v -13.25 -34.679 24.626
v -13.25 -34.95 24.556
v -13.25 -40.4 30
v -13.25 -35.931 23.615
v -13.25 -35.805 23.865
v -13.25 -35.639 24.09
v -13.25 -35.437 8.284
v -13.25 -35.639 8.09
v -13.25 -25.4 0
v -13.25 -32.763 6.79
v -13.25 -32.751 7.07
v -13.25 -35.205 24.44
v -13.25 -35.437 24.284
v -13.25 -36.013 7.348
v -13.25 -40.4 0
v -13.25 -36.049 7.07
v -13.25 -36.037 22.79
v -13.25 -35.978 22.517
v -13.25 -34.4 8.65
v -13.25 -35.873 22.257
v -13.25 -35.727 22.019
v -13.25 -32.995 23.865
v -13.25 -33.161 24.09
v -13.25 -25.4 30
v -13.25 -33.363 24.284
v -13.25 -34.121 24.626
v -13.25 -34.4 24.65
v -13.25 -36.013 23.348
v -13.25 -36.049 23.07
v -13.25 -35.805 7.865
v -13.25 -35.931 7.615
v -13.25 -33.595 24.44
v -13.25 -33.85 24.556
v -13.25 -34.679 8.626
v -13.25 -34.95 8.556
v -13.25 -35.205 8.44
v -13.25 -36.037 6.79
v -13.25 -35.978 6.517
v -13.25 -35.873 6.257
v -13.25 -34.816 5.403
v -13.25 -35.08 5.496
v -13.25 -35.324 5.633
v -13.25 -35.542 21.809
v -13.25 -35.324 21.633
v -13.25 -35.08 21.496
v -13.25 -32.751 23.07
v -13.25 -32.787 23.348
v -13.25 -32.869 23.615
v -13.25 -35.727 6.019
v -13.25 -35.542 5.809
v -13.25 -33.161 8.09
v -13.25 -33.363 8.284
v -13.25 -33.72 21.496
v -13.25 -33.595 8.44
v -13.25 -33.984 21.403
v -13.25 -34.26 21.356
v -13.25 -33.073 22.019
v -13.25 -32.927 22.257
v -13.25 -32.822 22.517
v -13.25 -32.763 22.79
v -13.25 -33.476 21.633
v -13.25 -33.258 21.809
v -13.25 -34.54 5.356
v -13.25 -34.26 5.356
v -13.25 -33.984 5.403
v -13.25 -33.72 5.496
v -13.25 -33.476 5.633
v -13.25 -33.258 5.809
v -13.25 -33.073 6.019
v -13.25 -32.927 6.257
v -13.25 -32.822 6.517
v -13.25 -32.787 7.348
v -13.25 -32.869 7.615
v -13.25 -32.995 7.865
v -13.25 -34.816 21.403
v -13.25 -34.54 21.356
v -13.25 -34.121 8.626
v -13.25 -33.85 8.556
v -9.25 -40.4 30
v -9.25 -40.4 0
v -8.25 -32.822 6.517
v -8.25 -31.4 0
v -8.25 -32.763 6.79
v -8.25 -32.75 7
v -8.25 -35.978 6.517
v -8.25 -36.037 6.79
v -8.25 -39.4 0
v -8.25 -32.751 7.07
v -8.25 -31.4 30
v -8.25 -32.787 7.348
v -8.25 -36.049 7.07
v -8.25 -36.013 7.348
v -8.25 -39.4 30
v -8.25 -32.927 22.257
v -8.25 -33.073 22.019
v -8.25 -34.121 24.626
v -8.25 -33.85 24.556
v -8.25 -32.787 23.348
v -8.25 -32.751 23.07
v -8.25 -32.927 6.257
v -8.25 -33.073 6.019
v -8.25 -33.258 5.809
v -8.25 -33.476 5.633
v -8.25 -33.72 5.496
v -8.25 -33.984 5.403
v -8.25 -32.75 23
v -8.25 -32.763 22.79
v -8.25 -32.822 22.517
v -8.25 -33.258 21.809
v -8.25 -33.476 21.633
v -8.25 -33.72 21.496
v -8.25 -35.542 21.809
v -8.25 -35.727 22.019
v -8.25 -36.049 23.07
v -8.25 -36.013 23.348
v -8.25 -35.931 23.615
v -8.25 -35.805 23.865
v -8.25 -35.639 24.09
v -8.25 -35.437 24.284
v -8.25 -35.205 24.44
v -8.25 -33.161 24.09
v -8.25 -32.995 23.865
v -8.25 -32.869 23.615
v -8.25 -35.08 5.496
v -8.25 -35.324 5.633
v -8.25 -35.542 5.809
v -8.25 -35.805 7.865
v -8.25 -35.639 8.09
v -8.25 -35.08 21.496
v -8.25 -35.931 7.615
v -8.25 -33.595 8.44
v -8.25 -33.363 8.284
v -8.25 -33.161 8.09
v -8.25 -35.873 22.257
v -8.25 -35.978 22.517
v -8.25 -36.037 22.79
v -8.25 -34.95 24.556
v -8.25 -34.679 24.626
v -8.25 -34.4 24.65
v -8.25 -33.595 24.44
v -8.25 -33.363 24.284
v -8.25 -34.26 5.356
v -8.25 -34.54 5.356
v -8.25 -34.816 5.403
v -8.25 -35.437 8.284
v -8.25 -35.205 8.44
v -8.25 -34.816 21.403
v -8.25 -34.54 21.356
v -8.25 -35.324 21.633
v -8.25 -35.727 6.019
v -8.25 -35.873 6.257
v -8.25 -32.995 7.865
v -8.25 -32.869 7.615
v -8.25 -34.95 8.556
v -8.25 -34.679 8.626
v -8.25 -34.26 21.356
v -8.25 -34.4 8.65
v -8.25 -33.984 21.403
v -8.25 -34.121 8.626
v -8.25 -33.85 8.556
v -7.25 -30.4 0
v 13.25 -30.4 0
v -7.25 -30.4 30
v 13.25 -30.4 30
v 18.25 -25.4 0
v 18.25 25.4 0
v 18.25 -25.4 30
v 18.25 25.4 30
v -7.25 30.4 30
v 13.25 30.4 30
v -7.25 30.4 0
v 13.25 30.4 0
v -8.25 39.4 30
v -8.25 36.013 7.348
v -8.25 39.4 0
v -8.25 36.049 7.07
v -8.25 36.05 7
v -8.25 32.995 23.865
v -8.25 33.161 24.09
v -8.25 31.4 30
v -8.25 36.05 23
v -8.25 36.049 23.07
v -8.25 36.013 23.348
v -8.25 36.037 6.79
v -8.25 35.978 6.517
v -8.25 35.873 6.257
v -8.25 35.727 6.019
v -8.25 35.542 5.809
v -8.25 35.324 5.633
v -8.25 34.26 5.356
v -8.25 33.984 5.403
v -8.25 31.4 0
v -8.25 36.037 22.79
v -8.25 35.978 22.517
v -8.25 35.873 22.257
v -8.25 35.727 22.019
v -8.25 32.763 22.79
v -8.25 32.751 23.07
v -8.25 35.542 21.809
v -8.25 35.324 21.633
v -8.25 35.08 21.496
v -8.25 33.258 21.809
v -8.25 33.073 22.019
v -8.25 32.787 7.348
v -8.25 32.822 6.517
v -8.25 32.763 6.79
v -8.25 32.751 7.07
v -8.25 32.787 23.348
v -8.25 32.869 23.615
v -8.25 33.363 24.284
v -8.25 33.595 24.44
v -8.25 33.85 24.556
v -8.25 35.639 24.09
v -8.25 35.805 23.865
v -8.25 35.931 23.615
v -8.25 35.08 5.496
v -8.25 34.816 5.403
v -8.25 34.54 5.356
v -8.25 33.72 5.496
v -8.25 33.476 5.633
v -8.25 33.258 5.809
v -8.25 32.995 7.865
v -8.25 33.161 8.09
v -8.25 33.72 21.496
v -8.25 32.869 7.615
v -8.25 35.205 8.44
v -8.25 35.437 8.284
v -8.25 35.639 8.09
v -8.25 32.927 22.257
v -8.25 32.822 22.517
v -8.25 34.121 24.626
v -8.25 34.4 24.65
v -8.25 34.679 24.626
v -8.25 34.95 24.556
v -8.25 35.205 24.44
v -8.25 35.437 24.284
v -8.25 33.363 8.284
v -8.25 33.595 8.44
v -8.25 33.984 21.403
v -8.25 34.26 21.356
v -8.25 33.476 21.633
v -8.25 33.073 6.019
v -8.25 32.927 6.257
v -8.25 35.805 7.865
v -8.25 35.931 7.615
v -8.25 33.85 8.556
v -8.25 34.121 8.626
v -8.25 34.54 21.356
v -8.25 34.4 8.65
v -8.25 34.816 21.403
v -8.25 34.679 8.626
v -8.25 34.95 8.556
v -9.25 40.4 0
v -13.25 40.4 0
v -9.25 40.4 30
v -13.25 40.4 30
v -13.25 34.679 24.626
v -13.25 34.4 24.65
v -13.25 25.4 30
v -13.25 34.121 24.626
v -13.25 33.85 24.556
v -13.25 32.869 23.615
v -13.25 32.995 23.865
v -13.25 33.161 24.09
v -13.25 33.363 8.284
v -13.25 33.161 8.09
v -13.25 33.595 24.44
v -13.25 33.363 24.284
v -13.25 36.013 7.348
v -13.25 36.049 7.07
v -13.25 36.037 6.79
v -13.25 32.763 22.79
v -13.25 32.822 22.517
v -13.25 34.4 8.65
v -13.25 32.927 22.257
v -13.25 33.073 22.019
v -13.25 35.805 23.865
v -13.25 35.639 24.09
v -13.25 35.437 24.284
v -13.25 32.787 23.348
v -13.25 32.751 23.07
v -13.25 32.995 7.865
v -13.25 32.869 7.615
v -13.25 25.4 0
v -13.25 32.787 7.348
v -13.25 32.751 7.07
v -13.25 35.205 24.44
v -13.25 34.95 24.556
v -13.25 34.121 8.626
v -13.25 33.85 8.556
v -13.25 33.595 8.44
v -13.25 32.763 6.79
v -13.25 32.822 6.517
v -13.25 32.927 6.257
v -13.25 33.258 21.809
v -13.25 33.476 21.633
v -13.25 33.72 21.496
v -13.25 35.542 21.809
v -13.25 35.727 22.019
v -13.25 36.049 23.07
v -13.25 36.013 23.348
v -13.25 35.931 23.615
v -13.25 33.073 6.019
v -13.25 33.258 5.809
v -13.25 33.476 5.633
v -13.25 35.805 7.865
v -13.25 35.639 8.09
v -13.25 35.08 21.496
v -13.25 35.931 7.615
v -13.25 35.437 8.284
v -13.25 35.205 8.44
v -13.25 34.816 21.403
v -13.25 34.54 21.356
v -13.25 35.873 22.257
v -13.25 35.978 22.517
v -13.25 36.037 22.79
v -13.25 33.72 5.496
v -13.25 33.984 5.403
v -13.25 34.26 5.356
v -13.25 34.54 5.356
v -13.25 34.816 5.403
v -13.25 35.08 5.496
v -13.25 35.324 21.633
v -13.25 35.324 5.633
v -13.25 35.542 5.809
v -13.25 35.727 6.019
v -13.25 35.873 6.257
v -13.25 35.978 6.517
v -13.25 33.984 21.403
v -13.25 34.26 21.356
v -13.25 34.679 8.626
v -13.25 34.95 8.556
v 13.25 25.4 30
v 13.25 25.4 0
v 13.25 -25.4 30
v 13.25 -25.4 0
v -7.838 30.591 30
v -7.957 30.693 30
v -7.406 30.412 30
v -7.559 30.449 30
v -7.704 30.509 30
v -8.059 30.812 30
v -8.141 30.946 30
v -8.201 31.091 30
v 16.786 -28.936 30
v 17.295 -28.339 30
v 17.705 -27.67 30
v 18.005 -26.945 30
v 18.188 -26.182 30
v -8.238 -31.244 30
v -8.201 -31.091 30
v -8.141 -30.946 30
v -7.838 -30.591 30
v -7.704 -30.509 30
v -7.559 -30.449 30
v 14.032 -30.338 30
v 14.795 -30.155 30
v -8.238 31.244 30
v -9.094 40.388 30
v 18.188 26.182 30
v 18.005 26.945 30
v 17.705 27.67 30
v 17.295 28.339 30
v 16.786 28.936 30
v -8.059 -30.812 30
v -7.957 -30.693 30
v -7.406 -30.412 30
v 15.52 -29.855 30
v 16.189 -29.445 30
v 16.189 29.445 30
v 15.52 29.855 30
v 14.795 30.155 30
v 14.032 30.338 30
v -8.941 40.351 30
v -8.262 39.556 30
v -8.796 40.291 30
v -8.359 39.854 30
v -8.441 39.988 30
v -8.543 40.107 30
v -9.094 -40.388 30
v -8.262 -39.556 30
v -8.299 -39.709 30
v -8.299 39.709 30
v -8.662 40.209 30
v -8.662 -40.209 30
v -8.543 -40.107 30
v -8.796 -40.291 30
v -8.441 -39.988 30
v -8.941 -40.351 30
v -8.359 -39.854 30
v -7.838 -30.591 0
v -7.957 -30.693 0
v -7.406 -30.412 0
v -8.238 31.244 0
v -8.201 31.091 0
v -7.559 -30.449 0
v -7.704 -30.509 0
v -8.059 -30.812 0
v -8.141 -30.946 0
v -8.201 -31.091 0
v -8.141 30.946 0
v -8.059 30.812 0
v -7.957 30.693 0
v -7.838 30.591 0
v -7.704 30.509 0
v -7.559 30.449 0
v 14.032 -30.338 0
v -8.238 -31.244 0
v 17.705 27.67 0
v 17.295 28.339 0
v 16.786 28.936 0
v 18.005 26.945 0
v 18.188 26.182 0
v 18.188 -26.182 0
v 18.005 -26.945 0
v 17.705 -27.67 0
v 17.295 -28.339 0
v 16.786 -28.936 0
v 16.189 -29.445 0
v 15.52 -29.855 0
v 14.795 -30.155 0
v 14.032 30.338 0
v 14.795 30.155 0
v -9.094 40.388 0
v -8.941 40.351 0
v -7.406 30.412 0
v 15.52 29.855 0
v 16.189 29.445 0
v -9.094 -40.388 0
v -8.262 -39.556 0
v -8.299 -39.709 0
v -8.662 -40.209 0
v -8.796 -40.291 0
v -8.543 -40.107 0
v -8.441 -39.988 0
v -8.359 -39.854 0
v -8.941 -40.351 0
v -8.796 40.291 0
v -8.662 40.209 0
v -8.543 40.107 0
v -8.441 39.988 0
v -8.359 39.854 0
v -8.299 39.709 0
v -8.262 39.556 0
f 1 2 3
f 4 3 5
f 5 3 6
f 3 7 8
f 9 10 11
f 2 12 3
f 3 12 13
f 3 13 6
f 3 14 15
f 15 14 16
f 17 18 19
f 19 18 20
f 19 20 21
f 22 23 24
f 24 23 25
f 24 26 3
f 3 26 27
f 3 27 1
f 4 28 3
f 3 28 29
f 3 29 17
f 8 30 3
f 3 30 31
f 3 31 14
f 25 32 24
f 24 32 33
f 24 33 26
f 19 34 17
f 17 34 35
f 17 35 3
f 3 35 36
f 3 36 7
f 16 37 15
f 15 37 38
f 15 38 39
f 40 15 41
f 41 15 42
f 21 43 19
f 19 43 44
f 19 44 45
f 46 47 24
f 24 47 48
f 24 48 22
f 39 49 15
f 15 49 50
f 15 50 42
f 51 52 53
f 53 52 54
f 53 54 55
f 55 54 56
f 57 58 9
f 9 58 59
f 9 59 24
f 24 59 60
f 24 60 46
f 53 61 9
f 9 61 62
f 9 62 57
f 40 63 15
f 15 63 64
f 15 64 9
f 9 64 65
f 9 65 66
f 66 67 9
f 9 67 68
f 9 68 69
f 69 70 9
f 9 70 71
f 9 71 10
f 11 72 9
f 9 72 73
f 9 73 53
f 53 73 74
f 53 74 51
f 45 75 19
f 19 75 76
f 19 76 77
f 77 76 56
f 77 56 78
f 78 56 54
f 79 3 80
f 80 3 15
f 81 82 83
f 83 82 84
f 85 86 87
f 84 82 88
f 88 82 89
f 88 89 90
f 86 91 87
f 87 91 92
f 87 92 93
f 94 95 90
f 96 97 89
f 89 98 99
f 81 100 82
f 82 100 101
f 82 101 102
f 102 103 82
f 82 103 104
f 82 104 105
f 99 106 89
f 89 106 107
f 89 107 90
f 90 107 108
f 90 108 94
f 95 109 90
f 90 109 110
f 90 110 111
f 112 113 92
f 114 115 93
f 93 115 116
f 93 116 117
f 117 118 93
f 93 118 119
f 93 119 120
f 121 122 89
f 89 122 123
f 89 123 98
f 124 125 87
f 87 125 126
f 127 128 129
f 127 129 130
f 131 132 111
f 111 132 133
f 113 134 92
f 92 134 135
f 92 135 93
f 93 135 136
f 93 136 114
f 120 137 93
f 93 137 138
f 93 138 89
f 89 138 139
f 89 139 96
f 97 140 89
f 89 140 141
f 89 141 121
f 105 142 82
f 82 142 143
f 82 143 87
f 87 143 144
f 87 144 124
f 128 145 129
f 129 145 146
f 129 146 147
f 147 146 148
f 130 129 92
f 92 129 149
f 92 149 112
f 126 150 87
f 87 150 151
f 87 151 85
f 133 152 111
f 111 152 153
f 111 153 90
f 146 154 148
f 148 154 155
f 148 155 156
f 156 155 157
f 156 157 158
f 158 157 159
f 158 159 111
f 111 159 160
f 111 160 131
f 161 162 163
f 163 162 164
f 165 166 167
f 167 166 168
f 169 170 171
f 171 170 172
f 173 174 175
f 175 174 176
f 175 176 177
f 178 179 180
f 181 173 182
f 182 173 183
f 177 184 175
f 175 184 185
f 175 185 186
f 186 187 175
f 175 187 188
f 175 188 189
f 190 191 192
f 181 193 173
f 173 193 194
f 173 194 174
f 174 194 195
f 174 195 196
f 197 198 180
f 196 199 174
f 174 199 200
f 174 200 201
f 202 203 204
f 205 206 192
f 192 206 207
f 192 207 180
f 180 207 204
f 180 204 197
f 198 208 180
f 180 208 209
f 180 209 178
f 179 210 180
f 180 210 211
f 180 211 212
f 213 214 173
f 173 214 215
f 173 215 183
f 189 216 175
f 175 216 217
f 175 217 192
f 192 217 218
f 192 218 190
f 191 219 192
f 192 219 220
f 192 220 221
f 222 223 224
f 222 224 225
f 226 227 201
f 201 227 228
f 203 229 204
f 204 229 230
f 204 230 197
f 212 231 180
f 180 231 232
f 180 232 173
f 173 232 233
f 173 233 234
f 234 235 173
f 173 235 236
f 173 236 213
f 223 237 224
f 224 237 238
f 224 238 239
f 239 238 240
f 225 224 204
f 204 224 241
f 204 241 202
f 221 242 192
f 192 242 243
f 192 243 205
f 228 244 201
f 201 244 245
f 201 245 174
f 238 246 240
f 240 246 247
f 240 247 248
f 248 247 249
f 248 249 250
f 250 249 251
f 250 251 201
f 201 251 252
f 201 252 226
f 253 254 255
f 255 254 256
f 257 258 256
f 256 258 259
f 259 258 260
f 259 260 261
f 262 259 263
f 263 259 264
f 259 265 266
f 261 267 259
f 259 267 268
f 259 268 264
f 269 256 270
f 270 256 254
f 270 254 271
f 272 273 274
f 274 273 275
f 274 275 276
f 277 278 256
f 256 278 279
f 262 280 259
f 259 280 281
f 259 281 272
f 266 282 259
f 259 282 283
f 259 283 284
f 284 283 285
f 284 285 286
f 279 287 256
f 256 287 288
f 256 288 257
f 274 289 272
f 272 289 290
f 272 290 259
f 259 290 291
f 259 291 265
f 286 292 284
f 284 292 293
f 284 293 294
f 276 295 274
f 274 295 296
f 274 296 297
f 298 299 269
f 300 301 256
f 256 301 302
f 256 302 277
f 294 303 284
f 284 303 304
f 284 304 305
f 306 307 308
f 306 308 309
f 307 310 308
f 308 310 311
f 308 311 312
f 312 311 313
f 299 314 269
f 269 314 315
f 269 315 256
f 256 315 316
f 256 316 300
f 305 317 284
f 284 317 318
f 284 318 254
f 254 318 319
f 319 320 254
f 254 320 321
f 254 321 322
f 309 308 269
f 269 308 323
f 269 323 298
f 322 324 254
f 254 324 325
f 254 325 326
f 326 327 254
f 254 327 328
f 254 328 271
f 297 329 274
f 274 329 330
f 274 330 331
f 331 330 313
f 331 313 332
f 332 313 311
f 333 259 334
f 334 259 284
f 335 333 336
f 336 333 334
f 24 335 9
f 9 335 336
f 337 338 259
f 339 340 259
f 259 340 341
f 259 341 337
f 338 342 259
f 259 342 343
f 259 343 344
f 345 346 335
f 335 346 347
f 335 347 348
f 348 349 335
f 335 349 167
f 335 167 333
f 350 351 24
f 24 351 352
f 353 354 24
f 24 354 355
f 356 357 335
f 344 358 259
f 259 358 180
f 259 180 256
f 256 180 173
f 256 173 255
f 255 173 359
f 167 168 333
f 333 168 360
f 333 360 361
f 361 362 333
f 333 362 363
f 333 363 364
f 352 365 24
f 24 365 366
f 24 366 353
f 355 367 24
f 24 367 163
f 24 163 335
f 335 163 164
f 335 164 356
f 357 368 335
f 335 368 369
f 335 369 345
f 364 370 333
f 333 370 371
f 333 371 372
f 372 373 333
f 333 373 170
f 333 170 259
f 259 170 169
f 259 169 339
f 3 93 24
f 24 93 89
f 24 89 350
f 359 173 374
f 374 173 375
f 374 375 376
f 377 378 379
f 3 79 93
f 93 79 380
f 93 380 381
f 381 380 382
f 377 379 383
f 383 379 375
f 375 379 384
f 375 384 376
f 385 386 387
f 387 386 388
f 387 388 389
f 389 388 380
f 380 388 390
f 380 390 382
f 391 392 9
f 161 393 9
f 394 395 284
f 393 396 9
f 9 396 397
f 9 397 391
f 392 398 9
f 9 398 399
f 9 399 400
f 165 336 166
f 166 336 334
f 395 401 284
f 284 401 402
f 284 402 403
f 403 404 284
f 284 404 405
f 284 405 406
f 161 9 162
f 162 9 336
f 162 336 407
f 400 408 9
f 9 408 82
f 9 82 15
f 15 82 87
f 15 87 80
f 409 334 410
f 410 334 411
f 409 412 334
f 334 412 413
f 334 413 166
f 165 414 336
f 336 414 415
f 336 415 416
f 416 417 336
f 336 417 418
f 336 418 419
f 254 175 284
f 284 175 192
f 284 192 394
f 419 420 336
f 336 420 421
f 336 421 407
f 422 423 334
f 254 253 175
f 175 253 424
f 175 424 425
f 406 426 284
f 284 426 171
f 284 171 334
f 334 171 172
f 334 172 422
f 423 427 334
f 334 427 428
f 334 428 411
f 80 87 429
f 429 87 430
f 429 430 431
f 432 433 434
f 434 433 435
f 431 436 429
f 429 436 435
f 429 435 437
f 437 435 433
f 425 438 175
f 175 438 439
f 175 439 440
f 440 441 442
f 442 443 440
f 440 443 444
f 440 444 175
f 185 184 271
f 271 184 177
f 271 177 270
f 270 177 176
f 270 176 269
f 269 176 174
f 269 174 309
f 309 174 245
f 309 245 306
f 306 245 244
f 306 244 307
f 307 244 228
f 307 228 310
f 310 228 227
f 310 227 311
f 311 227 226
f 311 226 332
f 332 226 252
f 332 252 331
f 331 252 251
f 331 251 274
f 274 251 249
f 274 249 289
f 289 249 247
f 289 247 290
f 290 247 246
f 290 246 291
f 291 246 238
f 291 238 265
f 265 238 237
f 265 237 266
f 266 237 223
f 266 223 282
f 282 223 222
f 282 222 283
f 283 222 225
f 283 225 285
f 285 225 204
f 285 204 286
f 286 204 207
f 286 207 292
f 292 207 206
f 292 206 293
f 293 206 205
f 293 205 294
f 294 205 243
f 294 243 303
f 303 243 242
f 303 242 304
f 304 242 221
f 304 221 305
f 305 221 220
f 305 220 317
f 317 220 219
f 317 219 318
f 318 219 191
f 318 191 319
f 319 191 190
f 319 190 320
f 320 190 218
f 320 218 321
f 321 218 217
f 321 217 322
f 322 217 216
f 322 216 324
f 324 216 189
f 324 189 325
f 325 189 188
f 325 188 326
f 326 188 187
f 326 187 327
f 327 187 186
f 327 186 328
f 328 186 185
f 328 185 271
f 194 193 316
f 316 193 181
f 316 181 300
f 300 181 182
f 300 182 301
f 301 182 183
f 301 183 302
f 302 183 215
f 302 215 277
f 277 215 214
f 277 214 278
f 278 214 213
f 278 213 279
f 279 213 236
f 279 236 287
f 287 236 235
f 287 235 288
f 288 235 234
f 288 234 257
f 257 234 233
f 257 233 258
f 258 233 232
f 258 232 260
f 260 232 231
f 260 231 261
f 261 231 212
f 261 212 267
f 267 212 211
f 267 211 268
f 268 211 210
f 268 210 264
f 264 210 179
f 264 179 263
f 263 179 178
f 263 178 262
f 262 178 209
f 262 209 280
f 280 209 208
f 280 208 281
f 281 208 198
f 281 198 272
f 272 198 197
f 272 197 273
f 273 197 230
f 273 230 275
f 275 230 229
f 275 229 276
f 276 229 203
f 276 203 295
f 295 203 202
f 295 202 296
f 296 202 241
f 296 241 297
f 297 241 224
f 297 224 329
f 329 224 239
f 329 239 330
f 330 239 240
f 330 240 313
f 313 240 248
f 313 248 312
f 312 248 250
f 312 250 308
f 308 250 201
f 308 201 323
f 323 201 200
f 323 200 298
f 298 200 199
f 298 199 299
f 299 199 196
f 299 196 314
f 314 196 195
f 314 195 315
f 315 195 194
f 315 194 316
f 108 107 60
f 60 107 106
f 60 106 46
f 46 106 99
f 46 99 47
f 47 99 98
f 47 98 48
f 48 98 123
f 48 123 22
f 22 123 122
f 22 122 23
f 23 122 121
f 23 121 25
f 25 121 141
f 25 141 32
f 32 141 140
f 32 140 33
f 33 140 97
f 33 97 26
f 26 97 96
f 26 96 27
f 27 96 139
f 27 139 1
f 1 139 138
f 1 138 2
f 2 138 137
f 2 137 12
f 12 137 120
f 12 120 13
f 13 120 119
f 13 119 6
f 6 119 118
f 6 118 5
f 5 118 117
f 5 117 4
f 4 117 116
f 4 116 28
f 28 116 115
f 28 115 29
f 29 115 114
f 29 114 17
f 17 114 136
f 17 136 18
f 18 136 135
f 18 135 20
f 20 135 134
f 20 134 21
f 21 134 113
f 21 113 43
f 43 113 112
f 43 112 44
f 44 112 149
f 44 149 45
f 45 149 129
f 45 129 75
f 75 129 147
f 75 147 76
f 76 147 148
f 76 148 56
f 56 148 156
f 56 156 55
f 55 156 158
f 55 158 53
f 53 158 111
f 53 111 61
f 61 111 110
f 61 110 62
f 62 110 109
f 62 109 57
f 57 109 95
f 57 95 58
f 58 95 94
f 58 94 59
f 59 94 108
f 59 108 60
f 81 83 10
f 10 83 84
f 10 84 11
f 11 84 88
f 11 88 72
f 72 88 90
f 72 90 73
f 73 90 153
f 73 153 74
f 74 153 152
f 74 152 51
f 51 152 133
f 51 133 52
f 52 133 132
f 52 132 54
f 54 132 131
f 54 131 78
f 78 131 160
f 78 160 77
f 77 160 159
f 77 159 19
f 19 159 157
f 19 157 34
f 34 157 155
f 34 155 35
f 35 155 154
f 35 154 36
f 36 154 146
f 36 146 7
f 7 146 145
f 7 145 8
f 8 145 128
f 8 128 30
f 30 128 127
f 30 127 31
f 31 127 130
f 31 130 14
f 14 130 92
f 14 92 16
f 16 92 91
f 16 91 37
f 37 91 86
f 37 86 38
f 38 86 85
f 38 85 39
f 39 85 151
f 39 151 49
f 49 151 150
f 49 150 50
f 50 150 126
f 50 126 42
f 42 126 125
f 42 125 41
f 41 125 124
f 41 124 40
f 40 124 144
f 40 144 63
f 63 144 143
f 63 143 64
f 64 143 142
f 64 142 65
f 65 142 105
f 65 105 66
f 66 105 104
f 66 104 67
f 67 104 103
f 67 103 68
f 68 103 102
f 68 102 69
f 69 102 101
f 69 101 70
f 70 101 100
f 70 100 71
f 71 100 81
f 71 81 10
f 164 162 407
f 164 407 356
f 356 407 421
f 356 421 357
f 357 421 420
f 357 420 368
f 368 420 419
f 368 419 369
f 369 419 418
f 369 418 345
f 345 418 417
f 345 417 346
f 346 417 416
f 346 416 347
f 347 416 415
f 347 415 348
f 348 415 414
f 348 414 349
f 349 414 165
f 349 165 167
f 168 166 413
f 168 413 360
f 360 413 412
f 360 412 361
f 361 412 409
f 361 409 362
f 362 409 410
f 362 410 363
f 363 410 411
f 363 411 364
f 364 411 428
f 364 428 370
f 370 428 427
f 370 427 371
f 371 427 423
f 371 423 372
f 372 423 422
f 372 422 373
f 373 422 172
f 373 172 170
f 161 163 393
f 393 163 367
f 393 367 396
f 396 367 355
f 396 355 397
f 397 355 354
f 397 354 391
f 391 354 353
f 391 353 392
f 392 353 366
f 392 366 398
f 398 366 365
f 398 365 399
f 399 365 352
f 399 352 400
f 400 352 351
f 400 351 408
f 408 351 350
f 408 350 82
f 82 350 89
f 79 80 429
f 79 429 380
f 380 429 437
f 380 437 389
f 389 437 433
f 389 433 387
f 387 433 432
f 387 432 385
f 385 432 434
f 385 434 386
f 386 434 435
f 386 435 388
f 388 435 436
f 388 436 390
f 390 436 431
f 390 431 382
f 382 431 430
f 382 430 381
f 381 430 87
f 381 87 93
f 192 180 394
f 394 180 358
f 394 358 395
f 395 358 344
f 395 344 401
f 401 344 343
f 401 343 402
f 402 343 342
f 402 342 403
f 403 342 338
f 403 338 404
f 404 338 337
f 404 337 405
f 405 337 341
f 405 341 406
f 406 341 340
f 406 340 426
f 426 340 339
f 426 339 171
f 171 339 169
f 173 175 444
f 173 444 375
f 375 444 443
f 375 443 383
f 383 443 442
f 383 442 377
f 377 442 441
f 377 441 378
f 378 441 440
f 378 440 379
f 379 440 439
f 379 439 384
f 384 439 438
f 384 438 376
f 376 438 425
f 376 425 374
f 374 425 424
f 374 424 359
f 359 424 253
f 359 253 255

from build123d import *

# Parameters (mm, degrees)
BOSS_EXTRUDE1_DEPTH = 30
SKETCH2_R           = 1.65
CUT_EXTRUDE2_DEPTH  = 30
FILLET1_R           = 5
FILLET2_R           = 1


with BuildPart() as part:
    # Sketch1 → Boss-Extrude1 (new body)
    with BuildSketch(Plane.XY):
        Polygon((-13.25, -40.4), (-13.25, -25.4), (13.25, -25.4), (13.25, 25.4), (-13.25, 25.4), (-13.25, 40.4), (-8.25, 40.4), (-8.25, 30.4), (18.25, 30.4), (18.25, -30.4), (-8.25, -30.4), (-8.25, -40.4), align=None)
    extrude(amount=BOSS_EXTRUDE1_DEPTH)

    # Sketch2 → Cut-Extrude2 (cut)
    with BuildSketch(Plane.ZY.offset(13.25)):
        with Locations((7, 34.4)):
            Circle(SKETCH2_R)
        with Locations((23, 34.4)):
            Circle(SKETCH2_R)
        with Locations((7, -34.4)):
            Circle(SKETCH2_R)
        with Locations((23, -34.4)):
            Circle(SKETCH2_R)
    extrude(amount=-CUT_EXTRUDE2_DEPTH, mode=Mode.SUBTRACT)

    # Fillet1
    fillet1_edges = [part.edges().sort_by_distance(p)[0] for p in [
        (18.25, 30.4, 15),
        (18.25, -30.4, 15),
    ]]
    fillet(fillet1_edges, radius=FILLET1_R)

    # Fillet2
    fillet2_edges = [part.edges().sort_by_distance(p)[0] for p in [
        (-8.25, 40.4, 15),
        (-8.25, 30.4, 15),
        (-8.25, -30.4, 15),
        (-8.25, -40.4, 15),
    ]]
    fillet(fillet2_edges, radius=FILLET2_R)


solid = part.part
